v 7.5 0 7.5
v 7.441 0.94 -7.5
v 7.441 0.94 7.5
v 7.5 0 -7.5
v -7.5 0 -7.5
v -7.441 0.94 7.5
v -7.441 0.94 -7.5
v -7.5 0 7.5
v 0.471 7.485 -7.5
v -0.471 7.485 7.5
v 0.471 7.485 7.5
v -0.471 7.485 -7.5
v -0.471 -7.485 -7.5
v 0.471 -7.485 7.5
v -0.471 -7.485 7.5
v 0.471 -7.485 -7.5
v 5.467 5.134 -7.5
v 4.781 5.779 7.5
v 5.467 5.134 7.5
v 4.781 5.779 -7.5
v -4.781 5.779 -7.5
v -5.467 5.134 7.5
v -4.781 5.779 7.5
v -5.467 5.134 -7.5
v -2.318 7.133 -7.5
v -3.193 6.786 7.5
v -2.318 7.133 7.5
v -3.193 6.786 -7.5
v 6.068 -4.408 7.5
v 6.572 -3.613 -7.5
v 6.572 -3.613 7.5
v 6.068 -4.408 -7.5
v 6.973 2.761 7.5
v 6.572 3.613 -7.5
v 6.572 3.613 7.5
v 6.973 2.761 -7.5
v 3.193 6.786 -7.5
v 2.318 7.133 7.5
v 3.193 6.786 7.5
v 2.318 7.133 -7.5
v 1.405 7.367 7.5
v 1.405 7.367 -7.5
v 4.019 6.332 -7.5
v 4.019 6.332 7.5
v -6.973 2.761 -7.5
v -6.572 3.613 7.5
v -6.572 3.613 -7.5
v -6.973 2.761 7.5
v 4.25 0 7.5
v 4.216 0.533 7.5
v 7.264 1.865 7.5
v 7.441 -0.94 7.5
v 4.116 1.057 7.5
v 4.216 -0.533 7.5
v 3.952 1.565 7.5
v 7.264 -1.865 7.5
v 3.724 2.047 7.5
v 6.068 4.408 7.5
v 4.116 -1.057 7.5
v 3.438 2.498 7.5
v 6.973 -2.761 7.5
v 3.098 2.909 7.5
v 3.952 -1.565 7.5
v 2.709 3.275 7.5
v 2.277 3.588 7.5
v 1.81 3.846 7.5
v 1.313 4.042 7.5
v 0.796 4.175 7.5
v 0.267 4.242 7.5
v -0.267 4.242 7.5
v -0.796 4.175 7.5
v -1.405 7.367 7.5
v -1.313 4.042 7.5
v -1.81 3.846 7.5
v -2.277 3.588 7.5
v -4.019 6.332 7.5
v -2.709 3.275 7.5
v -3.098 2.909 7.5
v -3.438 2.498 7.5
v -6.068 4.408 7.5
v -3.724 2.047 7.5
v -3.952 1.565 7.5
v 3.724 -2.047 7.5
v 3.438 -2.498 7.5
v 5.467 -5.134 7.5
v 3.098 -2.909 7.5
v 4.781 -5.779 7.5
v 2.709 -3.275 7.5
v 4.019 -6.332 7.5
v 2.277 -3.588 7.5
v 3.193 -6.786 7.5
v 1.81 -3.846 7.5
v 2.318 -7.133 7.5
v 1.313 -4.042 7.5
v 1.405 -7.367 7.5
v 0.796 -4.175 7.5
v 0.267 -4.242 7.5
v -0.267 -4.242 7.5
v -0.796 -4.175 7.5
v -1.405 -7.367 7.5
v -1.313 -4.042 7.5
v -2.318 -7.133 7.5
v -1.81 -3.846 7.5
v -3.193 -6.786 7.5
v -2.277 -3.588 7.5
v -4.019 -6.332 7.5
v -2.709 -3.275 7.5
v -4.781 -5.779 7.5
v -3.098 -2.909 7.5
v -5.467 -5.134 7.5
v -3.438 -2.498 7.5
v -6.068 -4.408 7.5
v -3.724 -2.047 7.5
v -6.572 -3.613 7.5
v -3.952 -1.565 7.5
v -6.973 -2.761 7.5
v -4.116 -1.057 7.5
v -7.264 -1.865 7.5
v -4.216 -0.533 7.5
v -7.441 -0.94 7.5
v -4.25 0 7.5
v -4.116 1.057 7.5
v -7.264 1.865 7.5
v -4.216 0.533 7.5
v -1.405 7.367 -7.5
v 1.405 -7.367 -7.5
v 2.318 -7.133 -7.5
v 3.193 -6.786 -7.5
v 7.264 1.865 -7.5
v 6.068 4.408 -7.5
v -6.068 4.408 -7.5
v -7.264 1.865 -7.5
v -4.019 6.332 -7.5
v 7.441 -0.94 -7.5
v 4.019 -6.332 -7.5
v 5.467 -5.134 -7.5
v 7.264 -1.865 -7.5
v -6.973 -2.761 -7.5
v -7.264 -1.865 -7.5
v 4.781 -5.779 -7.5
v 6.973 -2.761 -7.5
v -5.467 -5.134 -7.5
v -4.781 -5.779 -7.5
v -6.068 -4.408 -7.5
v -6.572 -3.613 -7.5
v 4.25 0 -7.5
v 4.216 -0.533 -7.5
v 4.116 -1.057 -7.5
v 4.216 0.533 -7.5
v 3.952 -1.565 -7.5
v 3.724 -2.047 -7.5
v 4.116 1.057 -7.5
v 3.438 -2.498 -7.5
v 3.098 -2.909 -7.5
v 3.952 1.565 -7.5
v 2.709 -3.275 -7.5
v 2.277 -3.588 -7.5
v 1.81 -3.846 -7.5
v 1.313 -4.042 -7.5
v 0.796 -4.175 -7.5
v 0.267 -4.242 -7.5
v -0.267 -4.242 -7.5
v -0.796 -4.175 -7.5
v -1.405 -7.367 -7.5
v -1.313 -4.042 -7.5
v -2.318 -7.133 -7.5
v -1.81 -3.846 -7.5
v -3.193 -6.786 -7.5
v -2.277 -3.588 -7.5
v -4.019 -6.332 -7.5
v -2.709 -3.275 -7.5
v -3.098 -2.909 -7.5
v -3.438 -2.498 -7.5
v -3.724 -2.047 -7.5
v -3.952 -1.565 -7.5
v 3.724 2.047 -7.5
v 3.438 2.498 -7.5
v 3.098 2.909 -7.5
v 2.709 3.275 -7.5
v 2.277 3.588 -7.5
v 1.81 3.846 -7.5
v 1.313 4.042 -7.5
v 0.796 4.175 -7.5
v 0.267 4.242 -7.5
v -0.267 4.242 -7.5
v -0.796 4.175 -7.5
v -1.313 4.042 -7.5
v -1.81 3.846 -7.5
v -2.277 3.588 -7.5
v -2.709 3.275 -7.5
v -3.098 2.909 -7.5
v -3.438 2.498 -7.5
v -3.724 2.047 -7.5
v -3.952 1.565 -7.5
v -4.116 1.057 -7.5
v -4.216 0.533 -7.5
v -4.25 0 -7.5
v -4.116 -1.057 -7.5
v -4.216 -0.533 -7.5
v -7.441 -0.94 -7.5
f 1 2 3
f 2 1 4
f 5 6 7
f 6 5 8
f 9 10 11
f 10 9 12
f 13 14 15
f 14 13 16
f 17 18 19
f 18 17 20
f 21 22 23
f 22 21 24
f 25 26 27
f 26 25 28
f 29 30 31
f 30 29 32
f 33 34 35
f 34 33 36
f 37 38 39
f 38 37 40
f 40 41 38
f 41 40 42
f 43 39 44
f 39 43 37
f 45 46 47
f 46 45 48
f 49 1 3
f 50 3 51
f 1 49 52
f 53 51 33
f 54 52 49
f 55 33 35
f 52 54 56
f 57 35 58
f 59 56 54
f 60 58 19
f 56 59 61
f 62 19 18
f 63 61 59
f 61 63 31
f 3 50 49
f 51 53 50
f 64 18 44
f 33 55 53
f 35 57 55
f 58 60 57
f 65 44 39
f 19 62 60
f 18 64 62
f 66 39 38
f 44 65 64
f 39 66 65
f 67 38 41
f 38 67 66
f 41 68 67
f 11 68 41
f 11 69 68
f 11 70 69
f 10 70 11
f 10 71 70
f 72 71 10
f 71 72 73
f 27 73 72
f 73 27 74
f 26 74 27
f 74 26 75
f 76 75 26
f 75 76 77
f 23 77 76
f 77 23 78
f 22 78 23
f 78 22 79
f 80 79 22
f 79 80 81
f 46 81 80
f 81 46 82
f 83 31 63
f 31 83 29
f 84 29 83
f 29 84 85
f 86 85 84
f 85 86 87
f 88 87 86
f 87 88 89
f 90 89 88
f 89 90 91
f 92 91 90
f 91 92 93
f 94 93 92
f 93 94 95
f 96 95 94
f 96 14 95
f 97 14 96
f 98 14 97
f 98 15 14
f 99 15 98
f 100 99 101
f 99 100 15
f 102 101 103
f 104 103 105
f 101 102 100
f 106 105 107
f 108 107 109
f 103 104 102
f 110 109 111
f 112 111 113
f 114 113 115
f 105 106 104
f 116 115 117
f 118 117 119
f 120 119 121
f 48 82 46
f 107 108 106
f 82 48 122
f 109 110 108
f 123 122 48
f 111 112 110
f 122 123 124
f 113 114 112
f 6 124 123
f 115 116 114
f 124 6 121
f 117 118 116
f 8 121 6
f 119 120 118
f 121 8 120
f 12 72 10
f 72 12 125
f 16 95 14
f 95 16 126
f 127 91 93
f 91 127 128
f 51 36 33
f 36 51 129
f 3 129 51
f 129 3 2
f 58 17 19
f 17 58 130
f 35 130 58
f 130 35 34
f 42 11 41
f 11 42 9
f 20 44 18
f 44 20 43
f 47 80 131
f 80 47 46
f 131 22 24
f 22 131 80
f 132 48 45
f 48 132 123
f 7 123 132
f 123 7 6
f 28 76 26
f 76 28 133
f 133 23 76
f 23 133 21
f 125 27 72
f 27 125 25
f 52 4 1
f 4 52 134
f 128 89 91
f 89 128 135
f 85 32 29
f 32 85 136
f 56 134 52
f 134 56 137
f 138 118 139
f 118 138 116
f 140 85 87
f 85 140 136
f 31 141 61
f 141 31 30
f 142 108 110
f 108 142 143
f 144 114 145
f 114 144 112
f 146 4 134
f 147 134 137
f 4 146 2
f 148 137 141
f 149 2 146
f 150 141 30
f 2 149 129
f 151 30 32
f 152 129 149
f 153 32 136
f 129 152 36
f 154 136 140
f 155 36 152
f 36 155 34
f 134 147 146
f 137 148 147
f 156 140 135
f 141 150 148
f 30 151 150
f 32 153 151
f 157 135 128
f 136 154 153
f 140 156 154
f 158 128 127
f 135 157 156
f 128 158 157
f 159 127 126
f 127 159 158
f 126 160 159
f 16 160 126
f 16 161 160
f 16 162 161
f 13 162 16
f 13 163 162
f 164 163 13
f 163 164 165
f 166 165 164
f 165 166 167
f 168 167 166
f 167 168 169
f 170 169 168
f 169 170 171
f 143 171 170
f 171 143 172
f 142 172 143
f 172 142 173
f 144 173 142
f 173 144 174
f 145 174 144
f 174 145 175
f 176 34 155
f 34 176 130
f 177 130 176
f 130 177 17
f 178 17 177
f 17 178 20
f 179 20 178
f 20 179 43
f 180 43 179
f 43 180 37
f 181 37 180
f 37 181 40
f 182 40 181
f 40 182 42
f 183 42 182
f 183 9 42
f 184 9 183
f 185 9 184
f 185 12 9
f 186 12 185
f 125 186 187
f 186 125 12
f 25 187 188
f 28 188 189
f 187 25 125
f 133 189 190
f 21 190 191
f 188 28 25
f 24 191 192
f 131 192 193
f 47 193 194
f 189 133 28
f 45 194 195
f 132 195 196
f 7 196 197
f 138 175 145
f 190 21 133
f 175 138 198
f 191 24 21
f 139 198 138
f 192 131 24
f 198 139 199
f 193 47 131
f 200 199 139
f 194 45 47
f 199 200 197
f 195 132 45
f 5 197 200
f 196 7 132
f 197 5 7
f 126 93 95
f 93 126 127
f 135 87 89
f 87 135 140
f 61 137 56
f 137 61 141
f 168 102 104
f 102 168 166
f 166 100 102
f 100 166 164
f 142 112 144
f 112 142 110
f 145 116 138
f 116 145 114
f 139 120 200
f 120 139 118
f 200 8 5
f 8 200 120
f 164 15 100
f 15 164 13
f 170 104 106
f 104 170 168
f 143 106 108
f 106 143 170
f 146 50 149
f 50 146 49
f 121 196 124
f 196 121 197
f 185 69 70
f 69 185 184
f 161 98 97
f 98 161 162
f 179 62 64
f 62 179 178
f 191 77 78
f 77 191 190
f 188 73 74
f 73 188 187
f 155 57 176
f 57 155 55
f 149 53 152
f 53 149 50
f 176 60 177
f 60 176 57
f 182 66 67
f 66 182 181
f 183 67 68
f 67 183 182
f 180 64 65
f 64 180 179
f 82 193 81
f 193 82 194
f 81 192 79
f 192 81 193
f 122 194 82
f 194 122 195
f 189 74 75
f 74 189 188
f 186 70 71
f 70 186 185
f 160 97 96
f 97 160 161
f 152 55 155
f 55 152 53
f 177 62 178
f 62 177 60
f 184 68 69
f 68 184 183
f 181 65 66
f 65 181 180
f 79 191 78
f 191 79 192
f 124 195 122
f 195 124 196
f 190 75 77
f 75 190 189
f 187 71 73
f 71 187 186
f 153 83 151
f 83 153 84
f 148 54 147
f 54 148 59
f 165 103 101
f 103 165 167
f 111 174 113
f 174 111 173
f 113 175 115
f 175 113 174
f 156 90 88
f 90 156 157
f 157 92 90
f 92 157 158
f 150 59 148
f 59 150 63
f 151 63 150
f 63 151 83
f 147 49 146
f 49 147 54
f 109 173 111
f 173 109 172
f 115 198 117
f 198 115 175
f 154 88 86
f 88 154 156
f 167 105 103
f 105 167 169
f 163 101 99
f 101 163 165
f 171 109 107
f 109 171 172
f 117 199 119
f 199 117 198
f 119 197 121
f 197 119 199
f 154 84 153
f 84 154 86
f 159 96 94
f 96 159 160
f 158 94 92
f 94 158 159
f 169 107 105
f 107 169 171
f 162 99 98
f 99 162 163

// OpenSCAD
$fn = 50;


difference() {
	union() {
		translate(v = [0, 0, -7.5000000000]) {
			cylinder(h = 15, r = 7.5000000000);
		}
	}
	union() {
		translate(v = [0, 0, -100.0000000000]) {
			cylinder(h = 200, r = 4.2500000000);
		}
	}
}
